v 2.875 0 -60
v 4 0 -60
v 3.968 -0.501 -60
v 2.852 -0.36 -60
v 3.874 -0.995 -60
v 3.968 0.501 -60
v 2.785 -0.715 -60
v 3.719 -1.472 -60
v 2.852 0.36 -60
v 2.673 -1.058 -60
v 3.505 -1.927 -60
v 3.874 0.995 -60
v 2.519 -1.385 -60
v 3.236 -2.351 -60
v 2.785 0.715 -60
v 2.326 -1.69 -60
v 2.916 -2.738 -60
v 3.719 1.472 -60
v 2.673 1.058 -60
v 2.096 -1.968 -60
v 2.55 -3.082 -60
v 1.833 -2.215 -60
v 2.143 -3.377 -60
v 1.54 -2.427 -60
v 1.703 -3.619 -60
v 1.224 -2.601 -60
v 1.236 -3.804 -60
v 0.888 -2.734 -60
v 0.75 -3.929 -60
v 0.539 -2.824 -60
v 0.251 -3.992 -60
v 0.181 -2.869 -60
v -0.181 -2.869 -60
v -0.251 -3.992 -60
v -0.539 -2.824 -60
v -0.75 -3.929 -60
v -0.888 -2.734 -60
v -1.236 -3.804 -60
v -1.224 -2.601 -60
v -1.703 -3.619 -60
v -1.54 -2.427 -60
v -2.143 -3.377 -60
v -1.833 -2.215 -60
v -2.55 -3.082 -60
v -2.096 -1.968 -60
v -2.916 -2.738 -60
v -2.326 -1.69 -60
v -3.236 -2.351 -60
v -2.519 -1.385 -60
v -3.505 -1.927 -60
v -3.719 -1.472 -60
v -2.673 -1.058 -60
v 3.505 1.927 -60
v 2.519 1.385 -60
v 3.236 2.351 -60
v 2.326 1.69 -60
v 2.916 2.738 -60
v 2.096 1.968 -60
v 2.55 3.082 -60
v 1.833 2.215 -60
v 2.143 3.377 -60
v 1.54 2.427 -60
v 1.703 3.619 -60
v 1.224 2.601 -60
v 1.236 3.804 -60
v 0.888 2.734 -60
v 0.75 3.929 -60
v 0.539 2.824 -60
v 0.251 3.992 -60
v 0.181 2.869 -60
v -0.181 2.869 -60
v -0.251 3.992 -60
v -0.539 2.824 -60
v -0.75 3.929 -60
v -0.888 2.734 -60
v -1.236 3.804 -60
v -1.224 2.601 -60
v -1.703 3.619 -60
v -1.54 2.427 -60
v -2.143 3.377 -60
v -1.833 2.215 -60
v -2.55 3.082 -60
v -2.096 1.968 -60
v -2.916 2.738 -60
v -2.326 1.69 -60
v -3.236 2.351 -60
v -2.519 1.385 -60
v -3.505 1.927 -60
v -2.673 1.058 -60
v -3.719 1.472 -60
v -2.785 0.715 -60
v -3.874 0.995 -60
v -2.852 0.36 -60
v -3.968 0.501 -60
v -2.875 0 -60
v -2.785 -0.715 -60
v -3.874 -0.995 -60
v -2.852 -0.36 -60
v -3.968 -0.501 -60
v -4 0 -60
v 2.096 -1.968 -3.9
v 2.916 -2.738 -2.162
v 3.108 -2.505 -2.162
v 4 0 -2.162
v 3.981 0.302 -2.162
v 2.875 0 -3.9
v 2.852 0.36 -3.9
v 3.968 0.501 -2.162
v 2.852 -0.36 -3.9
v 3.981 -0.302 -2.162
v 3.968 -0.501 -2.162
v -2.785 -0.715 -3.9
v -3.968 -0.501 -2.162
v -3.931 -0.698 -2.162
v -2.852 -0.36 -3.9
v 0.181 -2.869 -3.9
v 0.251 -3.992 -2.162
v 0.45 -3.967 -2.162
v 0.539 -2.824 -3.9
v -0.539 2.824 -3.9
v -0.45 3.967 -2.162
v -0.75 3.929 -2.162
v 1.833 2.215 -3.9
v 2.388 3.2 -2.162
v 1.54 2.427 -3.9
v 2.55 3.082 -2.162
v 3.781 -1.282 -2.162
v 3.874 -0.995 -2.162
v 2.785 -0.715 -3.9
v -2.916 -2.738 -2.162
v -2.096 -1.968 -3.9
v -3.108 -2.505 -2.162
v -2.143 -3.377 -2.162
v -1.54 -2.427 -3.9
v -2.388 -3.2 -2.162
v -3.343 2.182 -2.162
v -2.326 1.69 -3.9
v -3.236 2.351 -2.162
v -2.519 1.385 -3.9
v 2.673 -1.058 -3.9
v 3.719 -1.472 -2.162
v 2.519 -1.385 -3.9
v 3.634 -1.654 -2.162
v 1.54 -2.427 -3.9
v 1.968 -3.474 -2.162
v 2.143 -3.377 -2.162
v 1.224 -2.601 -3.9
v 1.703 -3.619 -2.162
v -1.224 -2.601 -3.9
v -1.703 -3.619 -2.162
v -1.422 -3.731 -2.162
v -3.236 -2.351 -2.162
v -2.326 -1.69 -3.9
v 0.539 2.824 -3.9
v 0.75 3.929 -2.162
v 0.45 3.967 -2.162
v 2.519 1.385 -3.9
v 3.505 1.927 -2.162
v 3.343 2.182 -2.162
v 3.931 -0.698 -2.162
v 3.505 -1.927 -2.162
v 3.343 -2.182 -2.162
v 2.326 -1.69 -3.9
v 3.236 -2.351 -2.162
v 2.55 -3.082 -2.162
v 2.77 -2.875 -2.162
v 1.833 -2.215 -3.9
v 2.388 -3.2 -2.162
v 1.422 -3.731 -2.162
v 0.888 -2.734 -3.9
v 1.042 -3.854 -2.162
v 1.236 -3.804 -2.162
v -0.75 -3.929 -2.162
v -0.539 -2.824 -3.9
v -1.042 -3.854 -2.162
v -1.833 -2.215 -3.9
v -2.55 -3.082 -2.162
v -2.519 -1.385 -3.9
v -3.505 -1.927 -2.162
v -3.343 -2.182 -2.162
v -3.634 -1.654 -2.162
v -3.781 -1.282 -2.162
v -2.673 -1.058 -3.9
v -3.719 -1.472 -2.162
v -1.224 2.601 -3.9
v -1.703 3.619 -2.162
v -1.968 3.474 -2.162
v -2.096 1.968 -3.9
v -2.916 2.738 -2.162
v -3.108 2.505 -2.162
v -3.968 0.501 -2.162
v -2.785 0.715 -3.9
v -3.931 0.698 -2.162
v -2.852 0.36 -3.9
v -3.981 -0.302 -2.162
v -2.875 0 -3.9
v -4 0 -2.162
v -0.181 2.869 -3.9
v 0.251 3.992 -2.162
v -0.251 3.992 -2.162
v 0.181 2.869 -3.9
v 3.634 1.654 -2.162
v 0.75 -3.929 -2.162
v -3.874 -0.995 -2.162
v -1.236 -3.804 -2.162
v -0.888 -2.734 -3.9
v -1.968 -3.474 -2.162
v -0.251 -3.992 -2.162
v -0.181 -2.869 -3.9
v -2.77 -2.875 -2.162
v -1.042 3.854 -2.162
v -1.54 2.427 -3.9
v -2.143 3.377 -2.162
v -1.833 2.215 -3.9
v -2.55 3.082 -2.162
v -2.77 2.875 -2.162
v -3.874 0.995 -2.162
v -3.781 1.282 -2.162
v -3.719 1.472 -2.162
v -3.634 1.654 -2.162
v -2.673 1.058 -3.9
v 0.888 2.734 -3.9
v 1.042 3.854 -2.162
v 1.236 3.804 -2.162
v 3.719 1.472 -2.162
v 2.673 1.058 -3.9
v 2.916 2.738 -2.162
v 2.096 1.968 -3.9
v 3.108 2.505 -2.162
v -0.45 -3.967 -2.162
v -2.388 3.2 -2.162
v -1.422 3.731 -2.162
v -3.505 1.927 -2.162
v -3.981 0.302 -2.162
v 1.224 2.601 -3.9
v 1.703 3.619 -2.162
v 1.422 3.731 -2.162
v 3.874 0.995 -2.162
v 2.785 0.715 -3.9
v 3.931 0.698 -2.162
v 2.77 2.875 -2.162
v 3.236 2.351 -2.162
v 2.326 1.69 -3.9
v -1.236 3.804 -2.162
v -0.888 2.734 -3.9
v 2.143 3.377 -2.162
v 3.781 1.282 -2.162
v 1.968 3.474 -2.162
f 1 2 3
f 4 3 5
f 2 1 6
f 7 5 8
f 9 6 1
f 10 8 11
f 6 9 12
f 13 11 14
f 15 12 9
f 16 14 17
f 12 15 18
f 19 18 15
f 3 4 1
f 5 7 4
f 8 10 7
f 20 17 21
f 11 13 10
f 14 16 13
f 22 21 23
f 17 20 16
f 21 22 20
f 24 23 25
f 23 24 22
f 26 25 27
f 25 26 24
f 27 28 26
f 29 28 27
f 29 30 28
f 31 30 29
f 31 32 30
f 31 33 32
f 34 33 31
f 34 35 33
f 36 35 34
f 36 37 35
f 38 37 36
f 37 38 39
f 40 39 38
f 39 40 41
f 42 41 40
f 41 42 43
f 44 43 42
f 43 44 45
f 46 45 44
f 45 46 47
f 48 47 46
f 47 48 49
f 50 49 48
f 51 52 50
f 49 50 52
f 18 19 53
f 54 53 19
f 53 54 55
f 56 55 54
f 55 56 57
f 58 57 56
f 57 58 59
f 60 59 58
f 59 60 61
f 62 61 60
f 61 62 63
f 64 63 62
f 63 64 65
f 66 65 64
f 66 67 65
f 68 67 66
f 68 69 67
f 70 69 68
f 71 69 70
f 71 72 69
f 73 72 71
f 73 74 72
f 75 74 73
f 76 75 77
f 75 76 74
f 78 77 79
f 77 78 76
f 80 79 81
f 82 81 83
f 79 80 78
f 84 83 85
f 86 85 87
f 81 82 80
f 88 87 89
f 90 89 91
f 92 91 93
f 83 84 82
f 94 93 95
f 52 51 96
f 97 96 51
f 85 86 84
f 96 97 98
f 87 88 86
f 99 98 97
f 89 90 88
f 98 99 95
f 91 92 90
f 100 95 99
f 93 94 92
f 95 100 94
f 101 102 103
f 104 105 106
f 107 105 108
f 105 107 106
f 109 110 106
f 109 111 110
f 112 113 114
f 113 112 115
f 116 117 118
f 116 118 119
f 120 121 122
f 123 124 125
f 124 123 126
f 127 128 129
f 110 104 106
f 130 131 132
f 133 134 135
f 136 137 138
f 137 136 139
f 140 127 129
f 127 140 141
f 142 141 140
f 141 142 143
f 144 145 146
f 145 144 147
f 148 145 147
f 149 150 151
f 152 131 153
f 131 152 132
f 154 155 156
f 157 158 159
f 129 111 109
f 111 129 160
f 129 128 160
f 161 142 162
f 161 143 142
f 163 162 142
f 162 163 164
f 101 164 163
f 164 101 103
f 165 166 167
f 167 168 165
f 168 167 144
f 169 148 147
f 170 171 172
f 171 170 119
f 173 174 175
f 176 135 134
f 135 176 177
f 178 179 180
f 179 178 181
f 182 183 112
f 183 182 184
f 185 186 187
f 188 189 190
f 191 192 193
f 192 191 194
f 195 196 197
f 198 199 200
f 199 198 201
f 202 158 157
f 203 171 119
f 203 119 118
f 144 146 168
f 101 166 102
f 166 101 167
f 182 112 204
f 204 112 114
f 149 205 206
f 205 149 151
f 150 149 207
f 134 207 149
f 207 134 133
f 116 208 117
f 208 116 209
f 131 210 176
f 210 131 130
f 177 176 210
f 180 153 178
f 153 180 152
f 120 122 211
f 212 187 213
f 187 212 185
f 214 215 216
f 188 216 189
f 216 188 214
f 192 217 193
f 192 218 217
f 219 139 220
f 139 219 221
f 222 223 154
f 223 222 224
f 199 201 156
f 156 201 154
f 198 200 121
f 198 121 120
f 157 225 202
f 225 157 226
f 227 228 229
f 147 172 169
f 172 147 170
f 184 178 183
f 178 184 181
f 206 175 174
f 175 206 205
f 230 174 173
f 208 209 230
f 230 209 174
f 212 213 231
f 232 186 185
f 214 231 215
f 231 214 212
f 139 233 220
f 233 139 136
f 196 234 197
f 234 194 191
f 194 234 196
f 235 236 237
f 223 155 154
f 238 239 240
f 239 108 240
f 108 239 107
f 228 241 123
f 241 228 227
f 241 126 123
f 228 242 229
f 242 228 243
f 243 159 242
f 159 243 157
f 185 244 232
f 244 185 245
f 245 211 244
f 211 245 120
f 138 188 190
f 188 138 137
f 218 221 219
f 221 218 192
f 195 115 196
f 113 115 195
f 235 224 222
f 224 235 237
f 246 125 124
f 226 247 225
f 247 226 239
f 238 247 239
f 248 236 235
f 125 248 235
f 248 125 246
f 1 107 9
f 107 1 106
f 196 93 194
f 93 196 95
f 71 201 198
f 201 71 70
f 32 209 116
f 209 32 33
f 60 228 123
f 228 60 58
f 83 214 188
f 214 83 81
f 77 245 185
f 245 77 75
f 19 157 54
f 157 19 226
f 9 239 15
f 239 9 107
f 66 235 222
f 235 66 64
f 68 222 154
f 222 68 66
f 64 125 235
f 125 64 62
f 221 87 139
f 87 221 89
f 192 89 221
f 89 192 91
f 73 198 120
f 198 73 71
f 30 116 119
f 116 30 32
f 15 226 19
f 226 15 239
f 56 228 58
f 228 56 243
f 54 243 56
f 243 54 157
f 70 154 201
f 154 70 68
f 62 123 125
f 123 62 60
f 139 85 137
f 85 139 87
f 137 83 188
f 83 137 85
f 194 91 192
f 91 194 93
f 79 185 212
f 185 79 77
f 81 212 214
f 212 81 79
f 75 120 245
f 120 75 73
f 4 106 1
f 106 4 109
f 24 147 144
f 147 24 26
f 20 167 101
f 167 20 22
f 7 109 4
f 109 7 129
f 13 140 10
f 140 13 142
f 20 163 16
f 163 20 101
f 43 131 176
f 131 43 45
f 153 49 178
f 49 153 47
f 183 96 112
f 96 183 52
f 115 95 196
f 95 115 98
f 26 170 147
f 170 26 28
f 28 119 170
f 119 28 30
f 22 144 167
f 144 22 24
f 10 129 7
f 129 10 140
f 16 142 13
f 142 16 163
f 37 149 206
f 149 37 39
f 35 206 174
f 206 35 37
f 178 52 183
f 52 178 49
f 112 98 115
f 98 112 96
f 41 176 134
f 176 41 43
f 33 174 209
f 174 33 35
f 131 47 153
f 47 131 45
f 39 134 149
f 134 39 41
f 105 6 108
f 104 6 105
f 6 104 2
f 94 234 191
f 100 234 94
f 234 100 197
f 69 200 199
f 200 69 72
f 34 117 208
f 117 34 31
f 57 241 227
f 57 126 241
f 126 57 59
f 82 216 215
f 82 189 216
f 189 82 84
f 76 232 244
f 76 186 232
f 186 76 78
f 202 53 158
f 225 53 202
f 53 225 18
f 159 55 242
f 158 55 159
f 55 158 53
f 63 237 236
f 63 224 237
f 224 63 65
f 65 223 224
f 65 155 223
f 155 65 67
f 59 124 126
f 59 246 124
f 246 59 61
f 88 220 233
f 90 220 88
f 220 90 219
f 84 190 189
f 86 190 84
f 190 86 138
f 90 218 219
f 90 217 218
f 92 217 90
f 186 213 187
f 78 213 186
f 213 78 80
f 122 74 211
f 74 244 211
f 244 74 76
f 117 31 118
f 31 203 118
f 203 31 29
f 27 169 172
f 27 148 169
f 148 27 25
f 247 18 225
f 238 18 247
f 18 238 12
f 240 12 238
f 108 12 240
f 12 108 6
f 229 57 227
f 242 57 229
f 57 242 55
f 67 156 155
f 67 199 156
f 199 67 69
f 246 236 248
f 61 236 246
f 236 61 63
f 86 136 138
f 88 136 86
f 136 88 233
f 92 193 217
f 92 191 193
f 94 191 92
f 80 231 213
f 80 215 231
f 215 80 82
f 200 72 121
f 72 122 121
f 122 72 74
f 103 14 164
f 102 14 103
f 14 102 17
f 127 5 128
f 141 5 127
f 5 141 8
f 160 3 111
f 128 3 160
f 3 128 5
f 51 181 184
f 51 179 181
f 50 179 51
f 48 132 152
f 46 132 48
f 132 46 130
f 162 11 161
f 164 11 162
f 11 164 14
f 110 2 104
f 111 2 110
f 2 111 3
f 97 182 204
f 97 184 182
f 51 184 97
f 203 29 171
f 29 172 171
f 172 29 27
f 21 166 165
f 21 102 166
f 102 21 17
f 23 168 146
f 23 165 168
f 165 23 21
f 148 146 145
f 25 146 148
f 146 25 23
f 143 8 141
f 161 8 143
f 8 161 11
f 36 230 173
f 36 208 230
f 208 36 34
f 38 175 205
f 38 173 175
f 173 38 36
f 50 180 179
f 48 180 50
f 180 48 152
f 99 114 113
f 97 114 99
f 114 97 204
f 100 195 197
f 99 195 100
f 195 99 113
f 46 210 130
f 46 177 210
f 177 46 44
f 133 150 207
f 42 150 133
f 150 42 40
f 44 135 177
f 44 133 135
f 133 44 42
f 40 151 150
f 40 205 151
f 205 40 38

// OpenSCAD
$fn = 50;


difference() {
	union() {
		translate(v = [0, 0, -60.0000000000]) {
			cylinder(h = 60, r = 4.0000000000);
		}
		cylinder(h = 0, r = 7.0000000000);
	}
	union() {
		translate(v = [0, 0, 0]) {
			rotate(a = [0, 0, 0]) {
				difference() {
					union() {
						#translate(v = [0, 0, -60.0000000000]) {
							cylinder(h = 60, r = 2.6000000000);
						}
						#translate(v = [0, 0, -3.9000000000]) {
							cylinder(h = 3.9000000000, r1 = 2.8750000000, r2 = 5.4000000000);
						}
						#translate(v = [0, 0, -60.0000000000]) {
							cylinder(h = 60, r = 2.8750000000);
						}
						#translate(v = [0, 0, -60.0000000000]) {
							cylinder(h = 60, r = 2.6000000000);
						}
					}
					union();
				}
			}
		}
	}
}
